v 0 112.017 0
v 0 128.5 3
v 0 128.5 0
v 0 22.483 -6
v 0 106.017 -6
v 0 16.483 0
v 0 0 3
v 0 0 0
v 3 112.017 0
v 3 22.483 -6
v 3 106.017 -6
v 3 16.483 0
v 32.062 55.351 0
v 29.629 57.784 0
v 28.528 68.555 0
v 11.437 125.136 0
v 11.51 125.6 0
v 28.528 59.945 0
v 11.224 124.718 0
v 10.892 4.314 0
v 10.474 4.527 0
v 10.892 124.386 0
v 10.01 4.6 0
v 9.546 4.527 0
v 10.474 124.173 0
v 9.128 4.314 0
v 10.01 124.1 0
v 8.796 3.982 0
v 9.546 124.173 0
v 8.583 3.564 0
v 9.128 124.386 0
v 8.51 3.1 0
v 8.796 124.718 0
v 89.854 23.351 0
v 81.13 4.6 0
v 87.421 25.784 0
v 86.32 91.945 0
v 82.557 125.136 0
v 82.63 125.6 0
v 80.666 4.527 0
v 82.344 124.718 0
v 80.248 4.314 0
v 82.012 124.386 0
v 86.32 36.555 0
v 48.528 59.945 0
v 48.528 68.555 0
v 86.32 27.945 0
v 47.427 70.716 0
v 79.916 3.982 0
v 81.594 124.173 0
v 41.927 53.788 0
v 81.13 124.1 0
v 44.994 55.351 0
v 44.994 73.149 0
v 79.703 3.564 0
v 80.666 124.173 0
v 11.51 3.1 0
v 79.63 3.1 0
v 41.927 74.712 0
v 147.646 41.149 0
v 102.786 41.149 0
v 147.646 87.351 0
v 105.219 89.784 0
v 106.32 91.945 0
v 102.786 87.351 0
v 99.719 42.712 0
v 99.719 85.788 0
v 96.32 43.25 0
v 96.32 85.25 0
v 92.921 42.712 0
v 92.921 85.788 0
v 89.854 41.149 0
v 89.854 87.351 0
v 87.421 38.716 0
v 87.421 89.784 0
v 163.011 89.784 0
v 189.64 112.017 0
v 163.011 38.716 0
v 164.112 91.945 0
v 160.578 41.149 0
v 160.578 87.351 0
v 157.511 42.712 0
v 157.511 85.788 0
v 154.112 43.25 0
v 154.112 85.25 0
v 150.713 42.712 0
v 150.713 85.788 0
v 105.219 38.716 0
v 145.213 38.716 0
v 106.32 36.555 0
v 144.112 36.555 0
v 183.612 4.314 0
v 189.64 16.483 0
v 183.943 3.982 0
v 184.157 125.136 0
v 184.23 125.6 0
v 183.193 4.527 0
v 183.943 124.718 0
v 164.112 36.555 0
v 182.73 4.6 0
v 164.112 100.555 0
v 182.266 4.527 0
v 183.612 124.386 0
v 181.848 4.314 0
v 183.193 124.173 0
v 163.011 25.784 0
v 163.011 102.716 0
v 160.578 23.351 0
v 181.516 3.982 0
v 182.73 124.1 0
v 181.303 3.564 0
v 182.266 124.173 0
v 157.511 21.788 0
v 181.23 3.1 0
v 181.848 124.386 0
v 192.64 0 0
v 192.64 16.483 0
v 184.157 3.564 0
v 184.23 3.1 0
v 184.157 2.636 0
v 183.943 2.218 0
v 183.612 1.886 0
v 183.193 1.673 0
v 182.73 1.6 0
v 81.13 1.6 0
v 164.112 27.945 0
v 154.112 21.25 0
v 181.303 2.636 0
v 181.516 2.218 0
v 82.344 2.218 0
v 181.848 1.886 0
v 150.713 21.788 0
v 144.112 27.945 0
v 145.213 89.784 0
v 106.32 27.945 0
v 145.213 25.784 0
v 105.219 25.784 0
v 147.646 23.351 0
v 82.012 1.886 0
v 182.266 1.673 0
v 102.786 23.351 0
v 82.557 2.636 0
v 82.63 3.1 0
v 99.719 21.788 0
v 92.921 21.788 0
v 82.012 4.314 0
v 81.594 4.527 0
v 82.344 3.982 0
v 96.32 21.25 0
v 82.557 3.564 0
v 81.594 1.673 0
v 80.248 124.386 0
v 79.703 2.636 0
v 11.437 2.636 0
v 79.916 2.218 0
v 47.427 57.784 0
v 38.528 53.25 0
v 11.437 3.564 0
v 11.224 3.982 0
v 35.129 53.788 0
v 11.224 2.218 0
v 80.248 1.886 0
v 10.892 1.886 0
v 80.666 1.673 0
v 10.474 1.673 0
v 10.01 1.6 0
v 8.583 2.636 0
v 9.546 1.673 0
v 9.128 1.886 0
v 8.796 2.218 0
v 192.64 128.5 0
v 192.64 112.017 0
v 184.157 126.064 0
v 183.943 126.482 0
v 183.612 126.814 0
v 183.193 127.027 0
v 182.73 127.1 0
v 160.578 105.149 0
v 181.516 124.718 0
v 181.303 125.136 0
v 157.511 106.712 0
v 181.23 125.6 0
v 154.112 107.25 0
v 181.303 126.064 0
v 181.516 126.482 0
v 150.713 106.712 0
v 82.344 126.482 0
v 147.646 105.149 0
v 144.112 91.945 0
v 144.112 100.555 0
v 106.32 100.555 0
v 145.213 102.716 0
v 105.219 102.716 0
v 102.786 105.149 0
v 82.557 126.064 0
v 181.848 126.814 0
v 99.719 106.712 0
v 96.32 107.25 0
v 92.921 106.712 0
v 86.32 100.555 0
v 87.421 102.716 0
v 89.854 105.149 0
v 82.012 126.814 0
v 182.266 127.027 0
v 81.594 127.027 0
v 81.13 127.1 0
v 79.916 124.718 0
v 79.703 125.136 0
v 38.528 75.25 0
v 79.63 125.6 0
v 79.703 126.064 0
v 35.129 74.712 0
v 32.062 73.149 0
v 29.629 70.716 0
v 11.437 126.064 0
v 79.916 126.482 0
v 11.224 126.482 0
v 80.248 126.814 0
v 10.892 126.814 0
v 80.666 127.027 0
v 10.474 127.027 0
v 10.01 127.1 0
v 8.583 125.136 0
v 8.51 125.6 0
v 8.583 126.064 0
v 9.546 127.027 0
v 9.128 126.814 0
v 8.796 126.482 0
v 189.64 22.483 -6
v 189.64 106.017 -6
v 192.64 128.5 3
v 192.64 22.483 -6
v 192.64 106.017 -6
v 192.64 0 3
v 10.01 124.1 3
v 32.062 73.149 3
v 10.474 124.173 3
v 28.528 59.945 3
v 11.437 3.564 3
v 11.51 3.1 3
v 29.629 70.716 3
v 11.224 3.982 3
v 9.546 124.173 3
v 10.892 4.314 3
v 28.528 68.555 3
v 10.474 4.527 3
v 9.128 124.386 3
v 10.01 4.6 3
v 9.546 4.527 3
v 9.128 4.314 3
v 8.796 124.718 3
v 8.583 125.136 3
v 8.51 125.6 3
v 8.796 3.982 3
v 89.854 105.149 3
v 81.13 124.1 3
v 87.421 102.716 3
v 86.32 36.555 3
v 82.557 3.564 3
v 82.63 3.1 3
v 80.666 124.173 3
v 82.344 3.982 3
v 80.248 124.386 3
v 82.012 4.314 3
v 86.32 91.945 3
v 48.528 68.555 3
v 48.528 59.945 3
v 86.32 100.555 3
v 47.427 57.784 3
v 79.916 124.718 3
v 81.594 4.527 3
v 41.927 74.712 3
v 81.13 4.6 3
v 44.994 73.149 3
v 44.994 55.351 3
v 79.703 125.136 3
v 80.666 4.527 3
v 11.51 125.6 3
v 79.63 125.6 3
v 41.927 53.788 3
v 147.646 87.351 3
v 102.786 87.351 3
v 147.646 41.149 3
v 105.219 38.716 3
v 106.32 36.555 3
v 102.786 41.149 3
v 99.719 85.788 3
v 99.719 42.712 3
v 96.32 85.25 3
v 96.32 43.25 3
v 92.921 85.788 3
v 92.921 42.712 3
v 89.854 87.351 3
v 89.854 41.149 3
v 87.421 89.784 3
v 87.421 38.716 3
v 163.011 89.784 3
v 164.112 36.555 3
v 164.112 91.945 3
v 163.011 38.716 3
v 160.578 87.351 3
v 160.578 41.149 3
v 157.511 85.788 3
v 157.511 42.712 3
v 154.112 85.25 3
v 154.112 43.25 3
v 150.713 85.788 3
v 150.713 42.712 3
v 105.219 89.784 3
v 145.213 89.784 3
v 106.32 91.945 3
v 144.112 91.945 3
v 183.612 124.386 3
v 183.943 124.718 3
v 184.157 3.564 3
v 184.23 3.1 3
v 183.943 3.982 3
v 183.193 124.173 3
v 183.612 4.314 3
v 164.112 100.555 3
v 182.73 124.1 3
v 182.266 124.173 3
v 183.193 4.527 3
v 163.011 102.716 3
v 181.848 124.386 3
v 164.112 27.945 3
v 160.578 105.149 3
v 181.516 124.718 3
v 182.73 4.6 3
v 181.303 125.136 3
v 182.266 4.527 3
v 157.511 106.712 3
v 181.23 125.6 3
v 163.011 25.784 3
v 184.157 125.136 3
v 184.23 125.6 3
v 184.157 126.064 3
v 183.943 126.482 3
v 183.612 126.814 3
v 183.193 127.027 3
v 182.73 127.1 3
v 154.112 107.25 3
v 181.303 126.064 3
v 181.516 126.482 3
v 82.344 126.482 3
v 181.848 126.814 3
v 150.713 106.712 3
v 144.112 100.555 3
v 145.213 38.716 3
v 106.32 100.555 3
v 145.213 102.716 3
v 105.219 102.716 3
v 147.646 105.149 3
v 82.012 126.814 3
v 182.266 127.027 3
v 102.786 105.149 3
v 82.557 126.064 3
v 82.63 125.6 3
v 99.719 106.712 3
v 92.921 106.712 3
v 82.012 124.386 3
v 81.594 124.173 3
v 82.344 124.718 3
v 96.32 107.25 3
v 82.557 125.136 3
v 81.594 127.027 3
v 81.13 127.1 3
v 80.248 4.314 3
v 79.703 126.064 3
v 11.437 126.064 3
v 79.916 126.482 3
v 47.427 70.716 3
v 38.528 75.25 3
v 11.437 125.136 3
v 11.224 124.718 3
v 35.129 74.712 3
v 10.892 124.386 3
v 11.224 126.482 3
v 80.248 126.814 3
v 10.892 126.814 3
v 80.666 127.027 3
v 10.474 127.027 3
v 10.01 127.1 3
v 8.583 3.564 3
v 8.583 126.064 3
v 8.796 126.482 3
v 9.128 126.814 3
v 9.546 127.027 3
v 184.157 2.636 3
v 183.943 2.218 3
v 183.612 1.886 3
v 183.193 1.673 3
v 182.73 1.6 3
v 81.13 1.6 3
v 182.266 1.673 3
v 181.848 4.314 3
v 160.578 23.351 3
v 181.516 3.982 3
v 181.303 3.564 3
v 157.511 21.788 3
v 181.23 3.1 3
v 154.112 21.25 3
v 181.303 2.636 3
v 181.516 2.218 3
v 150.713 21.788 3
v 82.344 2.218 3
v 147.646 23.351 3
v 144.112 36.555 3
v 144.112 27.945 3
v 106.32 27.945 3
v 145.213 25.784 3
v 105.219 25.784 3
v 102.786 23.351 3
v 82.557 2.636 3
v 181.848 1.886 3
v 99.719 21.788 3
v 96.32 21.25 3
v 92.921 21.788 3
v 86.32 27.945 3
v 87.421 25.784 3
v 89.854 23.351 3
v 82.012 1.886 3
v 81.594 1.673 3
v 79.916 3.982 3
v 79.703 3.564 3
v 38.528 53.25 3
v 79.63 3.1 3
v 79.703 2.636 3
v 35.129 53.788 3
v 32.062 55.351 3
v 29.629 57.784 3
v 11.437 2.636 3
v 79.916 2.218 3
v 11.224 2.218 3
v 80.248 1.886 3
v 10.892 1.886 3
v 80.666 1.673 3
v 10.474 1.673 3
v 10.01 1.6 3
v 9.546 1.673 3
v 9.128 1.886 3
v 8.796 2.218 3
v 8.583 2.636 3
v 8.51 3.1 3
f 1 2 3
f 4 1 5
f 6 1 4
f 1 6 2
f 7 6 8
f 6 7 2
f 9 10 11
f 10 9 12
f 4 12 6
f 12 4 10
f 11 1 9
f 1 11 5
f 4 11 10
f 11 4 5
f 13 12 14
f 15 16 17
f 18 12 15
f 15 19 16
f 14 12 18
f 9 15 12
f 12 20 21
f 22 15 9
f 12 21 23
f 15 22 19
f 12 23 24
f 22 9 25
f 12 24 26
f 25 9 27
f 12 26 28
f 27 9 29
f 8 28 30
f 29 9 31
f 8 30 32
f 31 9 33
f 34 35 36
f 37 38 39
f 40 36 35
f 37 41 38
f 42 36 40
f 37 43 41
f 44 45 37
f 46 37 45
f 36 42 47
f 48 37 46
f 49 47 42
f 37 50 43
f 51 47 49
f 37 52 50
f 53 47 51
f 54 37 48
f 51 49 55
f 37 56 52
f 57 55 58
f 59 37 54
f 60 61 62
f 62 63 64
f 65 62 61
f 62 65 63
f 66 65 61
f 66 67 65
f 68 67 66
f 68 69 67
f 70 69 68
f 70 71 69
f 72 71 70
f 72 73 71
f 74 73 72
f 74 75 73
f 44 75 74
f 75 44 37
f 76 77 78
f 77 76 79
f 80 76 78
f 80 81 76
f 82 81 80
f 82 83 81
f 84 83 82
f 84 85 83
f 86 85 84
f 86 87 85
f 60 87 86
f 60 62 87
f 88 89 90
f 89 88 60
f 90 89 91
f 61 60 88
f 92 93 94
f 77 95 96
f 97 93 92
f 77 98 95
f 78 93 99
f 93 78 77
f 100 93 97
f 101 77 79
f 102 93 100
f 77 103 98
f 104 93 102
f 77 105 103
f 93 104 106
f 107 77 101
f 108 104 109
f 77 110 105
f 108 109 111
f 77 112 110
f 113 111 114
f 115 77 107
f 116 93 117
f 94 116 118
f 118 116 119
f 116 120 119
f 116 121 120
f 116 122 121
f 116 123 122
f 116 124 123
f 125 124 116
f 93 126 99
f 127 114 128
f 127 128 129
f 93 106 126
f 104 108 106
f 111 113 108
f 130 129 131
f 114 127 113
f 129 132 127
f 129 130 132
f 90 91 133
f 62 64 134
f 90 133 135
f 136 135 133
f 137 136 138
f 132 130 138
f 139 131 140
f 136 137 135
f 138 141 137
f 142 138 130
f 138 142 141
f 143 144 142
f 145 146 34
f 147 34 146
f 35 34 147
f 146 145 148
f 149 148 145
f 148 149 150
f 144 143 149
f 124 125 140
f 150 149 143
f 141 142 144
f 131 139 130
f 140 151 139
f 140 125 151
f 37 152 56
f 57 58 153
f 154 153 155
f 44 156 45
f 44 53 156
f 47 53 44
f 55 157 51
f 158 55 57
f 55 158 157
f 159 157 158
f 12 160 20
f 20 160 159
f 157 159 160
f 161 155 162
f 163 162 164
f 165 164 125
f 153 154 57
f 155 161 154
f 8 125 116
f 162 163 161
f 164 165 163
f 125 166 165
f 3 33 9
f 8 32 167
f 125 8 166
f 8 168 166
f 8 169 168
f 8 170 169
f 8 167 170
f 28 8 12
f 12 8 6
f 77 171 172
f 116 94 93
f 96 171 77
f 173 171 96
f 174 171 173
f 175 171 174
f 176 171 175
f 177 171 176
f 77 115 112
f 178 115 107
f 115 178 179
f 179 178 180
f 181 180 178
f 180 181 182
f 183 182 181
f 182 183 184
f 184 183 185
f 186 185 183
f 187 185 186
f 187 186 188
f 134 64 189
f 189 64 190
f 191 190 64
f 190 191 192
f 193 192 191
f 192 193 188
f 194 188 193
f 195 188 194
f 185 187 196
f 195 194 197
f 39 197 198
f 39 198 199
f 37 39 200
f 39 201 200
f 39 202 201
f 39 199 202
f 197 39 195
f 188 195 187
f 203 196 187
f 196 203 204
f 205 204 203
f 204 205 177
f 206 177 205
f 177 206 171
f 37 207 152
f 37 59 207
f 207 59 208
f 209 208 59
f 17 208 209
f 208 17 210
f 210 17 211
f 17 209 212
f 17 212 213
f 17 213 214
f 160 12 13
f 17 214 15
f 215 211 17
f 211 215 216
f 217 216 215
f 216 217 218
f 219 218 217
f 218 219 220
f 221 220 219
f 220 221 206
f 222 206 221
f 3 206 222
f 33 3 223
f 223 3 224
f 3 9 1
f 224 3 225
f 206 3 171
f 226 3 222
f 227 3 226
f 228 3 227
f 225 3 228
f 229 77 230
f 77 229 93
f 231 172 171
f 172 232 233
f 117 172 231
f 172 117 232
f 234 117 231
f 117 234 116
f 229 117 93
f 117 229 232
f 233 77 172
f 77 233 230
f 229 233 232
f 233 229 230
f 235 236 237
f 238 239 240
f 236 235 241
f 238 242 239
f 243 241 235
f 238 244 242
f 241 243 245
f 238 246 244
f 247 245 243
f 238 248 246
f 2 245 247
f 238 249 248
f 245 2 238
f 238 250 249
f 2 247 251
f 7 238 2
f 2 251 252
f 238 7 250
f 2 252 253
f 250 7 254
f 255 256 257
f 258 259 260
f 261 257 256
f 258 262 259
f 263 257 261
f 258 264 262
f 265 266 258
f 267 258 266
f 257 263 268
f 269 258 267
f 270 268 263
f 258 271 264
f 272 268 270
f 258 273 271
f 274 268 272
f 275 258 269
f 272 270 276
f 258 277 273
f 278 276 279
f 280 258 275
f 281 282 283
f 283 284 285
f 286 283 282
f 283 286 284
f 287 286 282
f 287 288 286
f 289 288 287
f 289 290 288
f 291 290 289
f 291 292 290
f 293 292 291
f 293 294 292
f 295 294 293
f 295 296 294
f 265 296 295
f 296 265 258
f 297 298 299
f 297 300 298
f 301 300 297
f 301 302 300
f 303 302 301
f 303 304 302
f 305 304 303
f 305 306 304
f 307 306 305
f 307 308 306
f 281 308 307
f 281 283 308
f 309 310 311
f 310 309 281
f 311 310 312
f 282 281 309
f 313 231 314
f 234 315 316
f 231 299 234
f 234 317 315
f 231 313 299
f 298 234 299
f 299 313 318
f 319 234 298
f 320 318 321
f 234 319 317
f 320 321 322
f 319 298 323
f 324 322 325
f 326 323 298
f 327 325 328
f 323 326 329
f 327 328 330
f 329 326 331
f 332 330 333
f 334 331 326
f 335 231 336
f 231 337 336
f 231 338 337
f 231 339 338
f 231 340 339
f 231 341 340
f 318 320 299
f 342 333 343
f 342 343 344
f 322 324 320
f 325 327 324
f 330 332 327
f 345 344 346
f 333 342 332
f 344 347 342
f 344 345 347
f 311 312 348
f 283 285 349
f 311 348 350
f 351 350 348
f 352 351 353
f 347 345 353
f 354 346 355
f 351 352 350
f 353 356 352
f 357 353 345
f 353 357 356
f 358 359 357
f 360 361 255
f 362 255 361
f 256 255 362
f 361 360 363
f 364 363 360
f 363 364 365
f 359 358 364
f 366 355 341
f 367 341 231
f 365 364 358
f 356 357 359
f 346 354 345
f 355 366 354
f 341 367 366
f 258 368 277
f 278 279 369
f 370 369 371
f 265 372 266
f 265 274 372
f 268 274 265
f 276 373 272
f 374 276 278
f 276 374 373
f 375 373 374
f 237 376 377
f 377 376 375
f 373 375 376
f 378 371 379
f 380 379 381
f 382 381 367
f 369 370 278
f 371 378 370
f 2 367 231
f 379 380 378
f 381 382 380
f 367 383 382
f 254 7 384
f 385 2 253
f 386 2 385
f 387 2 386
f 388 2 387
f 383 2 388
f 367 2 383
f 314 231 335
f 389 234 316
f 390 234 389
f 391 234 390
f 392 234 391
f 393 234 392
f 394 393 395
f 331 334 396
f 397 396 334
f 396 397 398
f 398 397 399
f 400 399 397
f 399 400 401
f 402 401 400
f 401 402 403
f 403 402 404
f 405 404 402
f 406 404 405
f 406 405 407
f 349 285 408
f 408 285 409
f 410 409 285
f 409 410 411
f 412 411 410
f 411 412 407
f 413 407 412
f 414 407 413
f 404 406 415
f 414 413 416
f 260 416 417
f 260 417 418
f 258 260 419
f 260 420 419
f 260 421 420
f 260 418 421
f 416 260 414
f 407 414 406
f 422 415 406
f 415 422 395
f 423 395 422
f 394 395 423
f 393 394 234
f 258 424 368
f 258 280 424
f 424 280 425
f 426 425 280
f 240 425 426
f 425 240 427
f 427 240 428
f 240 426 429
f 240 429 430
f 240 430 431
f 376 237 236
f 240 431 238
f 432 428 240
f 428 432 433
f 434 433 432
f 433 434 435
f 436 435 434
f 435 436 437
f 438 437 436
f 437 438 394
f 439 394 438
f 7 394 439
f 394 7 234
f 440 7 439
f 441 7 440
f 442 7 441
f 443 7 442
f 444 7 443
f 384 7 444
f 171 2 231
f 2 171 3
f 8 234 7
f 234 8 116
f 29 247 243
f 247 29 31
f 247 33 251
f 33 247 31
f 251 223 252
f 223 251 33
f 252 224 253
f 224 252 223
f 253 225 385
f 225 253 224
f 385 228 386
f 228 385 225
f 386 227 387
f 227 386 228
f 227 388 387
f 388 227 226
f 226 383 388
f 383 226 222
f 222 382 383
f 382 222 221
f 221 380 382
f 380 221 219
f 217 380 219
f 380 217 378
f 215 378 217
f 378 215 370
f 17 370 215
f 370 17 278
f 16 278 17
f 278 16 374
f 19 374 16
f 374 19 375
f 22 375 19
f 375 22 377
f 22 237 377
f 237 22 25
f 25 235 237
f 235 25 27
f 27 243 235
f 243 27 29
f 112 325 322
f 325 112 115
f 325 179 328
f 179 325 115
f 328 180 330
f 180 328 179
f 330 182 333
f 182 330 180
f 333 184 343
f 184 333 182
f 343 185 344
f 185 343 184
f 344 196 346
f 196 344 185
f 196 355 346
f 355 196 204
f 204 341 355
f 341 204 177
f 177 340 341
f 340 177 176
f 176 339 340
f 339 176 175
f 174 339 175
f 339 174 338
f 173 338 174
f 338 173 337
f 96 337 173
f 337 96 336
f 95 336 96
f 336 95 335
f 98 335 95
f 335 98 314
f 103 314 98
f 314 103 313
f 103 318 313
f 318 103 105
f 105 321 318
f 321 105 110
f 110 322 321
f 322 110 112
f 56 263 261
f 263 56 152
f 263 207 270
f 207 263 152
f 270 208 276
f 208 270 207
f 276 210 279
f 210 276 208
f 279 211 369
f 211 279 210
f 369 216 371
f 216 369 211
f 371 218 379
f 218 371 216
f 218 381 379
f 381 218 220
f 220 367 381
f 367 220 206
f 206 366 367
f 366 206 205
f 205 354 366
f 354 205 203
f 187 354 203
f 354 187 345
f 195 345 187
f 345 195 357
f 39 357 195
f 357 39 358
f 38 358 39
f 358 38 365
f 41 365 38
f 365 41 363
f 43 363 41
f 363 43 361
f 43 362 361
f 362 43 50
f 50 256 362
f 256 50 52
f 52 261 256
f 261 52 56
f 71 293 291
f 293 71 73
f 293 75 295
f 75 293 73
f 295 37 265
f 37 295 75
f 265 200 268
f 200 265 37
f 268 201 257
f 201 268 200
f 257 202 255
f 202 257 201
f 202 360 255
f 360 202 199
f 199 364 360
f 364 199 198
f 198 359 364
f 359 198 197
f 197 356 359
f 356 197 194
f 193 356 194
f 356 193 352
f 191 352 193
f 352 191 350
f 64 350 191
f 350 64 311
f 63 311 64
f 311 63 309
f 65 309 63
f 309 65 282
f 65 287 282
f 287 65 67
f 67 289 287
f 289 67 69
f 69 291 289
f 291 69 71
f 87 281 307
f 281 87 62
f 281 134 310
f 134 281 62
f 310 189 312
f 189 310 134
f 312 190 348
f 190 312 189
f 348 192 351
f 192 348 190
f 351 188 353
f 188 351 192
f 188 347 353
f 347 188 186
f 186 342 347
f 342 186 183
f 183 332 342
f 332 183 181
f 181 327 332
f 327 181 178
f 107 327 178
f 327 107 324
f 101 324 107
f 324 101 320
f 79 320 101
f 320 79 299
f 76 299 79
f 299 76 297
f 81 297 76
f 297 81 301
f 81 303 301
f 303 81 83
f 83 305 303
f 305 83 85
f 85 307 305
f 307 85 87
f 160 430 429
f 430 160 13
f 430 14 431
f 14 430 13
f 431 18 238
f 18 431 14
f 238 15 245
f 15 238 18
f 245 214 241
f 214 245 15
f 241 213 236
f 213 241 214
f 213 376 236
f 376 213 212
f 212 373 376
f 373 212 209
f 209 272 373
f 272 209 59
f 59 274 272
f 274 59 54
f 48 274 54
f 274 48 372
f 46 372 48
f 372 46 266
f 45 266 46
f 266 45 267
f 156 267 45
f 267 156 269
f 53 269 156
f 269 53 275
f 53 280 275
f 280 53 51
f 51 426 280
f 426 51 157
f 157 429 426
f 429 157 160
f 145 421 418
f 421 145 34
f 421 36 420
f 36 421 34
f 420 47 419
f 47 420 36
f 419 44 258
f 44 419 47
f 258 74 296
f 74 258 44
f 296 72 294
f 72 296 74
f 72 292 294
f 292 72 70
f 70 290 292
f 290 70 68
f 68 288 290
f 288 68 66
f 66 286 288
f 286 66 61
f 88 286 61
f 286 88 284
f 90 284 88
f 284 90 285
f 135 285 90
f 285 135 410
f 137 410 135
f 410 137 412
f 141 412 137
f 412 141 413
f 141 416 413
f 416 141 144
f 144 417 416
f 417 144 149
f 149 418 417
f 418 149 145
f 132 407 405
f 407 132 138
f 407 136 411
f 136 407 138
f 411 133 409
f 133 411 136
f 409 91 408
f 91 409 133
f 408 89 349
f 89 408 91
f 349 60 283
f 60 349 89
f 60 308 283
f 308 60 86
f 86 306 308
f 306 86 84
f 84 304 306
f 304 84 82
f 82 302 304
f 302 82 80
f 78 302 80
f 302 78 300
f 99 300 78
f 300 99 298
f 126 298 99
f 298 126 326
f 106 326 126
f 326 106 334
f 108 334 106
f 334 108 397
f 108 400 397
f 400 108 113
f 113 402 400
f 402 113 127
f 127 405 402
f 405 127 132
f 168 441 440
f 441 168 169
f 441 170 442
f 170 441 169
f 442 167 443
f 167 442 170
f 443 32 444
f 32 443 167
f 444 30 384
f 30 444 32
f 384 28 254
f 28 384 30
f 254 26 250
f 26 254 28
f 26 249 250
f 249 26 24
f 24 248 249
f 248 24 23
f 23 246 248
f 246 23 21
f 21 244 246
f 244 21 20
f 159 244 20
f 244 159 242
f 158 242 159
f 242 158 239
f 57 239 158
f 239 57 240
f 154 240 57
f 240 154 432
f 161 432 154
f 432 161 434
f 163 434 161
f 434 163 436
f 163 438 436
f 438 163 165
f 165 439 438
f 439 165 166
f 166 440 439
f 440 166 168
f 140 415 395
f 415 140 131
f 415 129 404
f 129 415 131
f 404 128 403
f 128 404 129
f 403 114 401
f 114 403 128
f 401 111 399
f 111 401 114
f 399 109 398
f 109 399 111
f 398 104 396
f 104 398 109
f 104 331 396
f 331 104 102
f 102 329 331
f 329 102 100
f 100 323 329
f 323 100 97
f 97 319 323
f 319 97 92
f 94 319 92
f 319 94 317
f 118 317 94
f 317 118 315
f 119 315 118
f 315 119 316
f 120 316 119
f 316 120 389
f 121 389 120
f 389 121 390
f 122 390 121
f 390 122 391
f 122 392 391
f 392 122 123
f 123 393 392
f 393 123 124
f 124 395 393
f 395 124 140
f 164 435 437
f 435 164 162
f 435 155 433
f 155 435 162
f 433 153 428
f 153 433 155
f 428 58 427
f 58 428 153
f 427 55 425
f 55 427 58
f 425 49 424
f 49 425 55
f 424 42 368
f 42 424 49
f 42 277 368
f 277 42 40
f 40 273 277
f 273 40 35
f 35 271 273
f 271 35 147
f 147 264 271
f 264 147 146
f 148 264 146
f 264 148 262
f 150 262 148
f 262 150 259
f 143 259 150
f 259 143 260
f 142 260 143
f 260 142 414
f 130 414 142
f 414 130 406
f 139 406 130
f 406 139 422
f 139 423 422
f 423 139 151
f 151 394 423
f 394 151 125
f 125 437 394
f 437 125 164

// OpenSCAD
// file: panel.scad
$fn = 20;
U = 3;
T = 16;

h = U * 44.5 - 5;
w = T * 5.08 - 2*.2;

m_x = 7.47;
//m_x = 0;
m_y = 3.1;
m_d = 3;

F = U * 44.5 + (122.5 - 3 * 44.5);

echo(w);

module hole() {
//    hull() {
    //circle(d=m_d);
    translate([5.08/2,0]) circle(d=m_d);
//    }
}

module holes() {
    translate([m_x, m_y]) hole();
    translate([m_x, m_y + F]) hole();
}

module panel() {
    difference() {
    square([w, h]);
        holes();
        if(T>6) {
            translate([(T-3) * 5.08 - 5.08, 0]) holes();
        }
        translate([(T-24) * 5.08, 0]) holes();
    }
}

//panel();

//#square([46,62]);
//#import("jr-module-bay-cover.stl");
// main file
b_w = 13;
b_h = 20;

include <panel.scad>

T=38;
U=3;

difference() {
    linear_extrude(3)
    difference() {
    panel();
    
    // ARM TANK SYSTEM
    translate([w/5,h/2])
    intersection() {
        circle(d=22, true);
        square([20,22],true);
    }
    
    // MAIN BOTTLE VALVE
    translate([w/2,h/2 + 32])
    intersection() {
        circle(d=22, true);
        square([20,22],true);
    }
    
    // HOSE VENT
    translate([w/2,h/2 - 32])
    intersection() {
        circle(d=22, true);
        square([20,22],true);
    }
    
    // DECOUPLER (HOSE DETACH)
    translate([4*w/5,h/2 - 32])
    intersection() {
        circle(d=22, true);
        square([20,22],true);
    }
    
    // NO2/HE SWITCH
    translate([4*w/5,h/2+ 32])
    intersection() {
        circle(d=22, true);
        square([20,22],true);
    }
    
   
    }
}

intersection() {
    translate([0,h/2,40])
    rotate([0,90,0])
    linear_extrude(3)
    circle(d=h, $fn=12);
    
    translate([0,0,-6])
    linear_extrude(6)
    panel(); 
}

intersection() {
    translate([w-3,h/2,40])
    rotate([0,90,0])
    linear_extrude(3)
    circle(d=h, $fn=12);
    
    translate([0,0,-6])
    linear_extrude(6)
    panel(); 
}
